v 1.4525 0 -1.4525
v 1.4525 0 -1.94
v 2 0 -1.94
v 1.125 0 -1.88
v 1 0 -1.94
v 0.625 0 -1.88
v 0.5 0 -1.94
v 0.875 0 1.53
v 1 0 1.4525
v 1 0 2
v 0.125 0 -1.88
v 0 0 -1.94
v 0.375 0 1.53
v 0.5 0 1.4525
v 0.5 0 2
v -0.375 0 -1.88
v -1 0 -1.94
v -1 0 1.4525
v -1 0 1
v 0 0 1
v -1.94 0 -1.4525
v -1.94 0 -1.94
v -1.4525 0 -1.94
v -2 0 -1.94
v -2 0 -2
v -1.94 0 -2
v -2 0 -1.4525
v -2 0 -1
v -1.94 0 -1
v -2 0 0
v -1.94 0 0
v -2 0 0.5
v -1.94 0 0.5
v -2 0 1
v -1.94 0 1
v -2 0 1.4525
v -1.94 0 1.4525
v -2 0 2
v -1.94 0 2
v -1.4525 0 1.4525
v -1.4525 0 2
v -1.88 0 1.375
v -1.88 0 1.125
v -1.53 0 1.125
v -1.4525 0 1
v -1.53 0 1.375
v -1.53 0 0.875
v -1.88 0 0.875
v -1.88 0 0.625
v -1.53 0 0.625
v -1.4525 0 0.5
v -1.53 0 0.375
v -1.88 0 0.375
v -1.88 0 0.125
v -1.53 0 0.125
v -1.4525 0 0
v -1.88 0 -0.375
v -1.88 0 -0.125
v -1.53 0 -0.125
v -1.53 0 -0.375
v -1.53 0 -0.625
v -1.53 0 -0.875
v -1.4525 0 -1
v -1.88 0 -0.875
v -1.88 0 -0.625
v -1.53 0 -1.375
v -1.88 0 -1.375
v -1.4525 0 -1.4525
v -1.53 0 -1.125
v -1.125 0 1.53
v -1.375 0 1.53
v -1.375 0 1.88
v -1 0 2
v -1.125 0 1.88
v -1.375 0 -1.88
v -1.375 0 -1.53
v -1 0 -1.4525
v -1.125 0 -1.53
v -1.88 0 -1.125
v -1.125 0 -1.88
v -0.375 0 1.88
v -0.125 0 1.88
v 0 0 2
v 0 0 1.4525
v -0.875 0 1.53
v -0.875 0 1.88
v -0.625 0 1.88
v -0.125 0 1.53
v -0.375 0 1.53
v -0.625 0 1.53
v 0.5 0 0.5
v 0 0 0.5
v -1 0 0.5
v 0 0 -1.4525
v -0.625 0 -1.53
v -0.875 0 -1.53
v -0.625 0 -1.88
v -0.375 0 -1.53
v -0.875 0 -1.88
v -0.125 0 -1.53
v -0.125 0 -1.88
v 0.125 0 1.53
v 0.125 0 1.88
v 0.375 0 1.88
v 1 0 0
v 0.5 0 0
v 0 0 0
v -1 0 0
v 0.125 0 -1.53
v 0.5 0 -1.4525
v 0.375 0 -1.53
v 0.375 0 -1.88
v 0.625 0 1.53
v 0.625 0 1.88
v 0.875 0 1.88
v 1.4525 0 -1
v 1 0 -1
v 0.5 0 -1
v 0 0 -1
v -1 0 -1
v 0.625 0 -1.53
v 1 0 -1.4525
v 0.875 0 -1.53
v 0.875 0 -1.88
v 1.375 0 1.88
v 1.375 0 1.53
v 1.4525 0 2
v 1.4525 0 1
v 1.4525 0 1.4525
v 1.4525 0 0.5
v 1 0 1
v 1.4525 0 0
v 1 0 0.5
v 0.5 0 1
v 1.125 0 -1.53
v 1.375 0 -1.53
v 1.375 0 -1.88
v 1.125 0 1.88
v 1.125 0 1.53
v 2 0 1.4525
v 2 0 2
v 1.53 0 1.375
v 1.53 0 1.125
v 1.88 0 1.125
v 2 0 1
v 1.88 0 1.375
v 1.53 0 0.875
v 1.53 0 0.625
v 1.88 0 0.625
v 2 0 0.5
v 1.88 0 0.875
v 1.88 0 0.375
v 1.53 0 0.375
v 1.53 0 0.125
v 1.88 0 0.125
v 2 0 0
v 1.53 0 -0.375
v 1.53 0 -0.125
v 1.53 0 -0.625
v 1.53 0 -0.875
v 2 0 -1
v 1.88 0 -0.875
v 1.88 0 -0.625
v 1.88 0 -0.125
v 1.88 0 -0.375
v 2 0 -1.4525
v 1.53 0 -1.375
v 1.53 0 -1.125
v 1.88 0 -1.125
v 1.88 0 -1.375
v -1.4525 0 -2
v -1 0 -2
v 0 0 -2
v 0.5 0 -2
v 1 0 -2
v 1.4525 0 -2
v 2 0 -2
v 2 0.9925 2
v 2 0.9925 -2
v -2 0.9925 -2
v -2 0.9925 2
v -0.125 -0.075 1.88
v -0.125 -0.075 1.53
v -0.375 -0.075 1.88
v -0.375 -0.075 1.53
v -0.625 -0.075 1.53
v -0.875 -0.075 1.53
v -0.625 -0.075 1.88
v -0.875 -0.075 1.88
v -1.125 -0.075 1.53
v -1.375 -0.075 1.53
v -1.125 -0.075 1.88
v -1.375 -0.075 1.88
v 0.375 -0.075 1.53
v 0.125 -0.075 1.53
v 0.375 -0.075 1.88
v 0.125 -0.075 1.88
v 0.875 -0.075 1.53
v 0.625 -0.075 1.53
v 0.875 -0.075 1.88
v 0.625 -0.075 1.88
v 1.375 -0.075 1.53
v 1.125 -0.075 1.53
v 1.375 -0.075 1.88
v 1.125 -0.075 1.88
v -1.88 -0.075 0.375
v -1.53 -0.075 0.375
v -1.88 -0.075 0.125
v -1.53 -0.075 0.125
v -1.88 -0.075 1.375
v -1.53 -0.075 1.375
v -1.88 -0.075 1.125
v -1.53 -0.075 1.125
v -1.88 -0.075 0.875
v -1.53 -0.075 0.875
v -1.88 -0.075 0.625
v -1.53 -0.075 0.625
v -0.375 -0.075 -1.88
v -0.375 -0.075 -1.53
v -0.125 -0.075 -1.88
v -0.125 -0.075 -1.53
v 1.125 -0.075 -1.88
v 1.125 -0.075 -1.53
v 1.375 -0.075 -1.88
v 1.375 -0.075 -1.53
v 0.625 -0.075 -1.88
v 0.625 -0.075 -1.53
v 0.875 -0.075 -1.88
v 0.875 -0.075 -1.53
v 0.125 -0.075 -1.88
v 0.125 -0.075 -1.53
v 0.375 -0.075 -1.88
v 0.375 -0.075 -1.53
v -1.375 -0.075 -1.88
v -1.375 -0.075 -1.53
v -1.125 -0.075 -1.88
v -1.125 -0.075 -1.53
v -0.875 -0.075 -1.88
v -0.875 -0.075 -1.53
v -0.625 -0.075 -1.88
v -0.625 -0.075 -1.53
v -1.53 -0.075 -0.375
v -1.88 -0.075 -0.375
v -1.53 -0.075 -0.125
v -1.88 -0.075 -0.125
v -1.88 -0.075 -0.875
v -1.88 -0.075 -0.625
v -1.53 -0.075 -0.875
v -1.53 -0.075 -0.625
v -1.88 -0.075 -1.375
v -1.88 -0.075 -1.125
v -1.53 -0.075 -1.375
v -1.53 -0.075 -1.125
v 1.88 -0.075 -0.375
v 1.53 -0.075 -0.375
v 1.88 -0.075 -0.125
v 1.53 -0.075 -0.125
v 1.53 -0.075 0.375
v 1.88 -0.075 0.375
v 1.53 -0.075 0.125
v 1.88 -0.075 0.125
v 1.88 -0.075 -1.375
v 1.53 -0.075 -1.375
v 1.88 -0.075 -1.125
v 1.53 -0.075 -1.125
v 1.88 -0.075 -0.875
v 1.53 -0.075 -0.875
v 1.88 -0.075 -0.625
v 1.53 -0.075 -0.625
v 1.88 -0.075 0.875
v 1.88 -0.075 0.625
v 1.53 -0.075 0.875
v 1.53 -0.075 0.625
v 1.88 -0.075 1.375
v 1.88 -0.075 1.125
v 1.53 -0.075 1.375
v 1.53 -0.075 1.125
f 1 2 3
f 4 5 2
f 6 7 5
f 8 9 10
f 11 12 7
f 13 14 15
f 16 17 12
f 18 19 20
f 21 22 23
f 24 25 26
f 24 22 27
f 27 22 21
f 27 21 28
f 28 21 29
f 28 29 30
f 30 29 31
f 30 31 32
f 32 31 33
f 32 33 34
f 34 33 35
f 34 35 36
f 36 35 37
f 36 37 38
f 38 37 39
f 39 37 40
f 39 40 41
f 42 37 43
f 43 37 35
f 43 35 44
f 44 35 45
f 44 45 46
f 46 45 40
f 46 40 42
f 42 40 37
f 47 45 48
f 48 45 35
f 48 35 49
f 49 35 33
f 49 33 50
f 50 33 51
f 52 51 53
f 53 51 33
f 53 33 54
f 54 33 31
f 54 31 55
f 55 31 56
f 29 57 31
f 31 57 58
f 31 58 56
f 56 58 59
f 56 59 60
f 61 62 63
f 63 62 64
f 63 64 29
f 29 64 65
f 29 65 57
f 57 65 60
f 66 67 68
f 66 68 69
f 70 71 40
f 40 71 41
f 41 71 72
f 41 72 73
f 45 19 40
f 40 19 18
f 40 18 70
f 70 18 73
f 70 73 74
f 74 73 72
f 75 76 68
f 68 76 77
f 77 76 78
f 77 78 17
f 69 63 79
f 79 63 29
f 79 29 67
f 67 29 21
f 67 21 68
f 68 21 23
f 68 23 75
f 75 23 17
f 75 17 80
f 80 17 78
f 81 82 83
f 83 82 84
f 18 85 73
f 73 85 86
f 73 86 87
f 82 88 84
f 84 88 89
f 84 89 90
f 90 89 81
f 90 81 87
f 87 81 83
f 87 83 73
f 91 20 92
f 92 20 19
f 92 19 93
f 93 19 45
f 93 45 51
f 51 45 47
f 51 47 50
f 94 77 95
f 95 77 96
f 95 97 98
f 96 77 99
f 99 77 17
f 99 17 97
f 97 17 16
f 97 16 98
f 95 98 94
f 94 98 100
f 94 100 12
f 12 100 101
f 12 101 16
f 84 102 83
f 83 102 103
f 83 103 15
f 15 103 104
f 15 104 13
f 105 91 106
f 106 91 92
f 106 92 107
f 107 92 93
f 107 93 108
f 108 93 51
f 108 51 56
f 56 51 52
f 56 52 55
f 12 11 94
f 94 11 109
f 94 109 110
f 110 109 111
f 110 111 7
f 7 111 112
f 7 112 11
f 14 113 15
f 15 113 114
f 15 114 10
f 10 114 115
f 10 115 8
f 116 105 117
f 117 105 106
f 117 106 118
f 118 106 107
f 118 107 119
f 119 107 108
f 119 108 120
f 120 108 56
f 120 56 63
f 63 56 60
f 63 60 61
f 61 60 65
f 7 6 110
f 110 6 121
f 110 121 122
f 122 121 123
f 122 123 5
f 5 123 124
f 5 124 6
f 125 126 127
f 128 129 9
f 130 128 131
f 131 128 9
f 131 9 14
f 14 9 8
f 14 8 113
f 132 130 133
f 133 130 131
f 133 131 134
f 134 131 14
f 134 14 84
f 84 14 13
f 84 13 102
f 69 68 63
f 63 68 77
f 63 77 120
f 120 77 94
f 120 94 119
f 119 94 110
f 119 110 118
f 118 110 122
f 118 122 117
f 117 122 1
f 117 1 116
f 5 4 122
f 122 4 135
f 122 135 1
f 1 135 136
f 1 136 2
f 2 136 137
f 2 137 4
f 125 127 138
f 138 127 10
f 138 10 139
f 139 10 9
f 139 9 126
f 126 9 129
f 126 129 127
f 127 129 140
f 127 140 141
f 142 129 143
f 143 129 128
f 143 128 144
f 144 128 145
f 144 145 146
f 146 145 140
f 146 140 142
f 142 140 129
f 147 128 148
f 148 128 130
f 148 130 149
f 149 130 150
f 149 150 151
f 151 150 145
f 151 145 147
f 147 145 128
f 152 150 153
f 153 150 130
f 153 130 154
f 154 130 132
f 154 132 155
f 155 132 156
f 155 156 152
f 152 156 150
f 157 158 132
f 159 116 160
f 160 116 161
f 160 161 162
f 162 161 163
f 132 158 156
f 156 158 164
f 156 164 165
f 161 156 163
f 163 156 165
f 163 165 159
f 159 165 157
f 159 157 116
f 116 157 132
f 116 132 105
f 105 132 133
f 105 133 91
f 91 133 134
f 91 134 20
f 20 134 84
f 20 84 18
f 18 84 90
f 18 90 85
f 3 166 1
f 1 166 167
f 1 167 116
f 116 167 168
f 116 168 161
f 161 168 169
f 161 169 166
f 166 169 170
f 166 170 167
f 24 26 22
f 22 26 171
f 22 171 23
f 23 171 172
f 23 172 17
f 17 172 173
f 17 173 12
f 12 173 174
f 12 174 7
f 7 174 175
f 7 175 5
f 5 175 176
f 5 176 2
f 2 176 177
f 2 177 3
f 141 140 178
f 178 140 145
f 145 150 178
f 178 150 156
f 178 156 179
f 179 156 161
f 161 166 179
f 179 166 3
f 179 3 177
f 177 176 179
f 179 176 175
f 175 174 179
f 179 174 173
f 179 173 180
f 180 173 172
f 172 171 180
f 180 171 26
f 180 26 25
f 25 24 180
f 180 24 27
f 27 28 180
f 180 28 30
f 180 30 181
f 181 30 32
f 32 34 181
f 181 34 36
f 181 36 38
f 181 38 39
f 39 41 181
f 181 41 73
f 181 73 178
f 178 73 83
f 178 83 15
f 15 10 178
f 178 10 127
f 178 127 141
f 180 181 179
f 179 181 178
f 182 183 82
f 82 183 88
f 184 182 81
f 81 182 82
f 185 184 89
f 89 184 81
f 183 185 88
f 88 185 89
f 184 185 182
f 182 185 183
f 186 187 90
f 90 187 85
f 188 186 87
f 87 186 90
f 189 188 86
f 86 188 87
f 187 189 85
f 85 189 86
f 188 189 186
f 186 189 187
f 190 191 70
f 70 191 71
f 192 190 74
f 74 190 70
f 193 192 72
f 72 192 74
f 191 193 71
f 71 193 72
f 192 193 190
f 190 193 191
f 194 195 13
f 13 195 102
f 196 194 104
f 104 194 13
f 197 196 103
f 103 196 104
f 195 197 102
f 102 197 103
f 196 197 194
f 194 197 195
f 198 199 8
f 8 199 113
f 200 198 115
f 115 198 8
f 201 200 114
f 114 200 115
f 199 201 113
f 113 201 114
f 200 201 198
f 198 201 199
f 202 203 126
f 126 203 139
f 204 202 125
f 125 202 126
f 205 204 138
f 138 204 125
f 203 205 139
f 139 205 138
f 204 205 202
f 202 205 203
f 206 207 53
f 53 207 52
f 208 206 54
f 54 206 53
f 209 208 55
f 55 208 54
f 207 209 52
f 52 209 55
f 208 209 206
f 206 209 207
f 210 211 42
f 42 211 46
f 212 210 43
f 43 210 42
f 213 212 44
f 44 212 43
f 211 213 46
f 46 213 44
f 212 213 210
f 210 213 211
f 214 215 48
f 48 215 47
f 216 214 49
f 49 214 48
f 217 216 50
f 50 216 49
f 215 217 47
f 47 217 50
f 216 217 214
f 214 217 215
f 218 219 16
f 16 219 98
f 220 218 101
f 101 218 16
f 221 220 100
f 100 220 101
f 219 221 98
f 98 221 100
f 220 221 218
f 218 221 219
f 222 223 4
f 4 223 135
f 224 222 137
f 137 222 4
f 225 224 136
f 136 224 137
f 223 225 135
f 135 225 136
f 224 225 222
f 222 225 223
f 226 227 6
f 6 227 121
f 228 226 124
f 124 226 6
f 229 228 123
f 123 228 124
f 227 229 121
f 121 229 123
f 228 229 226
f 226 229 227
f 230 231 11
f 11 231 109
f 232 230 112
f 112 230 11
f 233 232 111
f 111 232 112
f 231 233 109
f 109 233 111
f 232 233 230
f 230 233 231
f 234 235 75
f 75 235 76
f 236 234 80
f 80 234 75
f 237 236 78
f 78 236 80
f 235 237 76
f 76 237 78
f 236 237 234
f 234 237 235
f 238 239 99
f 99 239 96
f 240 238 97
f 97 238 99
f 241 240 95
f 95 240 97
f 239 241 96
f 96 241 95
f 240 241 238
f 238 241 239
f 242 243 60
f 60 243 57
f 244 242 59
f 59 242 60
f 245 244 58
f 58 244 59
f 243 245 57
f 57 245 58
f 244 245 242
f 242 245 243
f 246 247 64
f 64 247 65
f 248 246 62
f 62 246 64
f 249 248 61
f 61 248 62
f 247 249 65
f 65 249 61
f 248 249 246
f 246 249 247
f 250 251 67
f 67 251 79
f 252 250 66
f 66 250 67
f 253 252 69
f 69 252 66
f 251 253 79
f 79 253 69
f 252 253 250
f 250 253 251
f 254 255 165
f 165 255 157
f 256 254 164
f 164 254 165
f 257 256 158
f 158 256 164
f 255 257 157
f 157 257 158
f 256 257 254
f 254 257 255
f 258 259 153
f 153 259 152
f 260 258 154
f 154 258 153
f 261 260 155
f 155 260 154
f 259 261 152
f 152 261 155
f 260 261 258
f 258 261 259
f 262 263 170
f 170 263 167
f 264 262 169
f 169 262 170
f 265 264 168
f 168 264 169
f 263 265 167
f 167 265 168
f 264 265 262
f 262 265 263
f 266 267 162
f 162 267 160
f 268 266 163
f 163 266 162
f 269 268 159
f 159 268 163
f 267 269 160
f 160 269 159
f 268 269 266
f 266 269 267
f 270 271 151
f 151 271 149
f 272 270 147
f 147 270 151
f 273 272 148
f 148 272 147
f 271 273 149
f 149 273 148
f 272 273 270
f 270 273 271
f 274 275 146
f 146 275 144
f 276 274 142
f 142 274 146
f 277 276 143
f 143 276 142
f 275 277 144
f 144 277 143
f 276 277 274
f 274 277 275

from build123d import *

# Parameters (mm, degrees)
SKETCH2_W           = 4
SKETCH2_H           = 4
BOSS_EXTRUDE1_DEPTH = 0.9925
SKETCH3_W           = 0.25
SKETCH3_H           = 0.35
SKETCH3_W_2         = 0.35
SKETCH3_H_2         = 0.25
BOSS_EXTRUDE2_DEPTH = 0.075


with BuildPart() as part:
    # Sketch2 → Boss-Extrude1 (new body)
    with BuildSketch(Plane(origin=(0, 0, 0), x_dir=(1, 0, 0), z_dir=(0, 1, 0))):
        Rectangle(SKETCH2_W, SKETCH2_H)
    extrude(amount=BOSS_EXTRUDE1_DEPTH)

    # Sketch3 → Boss-Extrude2 (add)
    with BuildSketch(Plane.XZ):
        with Locations((-0.75, 1.705)):
            Rectangle(SKETCH3_W, SKETCH3_H)
        with Locations((-0.25, 1.705)):
            Rectangle(SKETCH3_W, SKETCH3_H)
        with Locations((-1.25, 1.705)):
            Rectangle(SKETCH3_W, SKETCH3_H)
        with Locations((0.25, 1.705)):
            Rectangle(SKETCH3_W, SKETCH3_H)
        with Locations((0.75, 1.705)):
            Rectangle(SKETCH3_W, SKETCH3_H)
        with Locations((1.25, 1.705)):
            Rectangle(SKETCH3_W, SKETCH3_H)
        with Locations((1.25, -1.705)):
            Rectangle(SKETCH3_W, SKETCH3_H)
        with Locations((-1.705, 1.25)):
            Rectangle(SKETCH3_W_2, SKETCH3_H_2)
        with Locations((-1.705, 0.75)):
            Rectangle(SKETCH3_W_2, SKETCH3_H_2)
        with Locations((-1.705, 0.25)):
            Rectangle(SKETCH3_W_2, SKETCH3_H_2)
        with Locations((0.75, -1.705)):
            Rectangle(SKETCH3_W, SKETCH3_H)
        with Locations((0.25, -1.705)):
            Rectangle(SKETCH3_W, SKETCH3_H)
        with Locations((-1.25, -1.705)):
            Rectangle(SKETCH3_W, SKETCH3_H)
        with Locations((-0.75, -1.705)):
            Rectangle(SKETCH3_W, SKETCH3_H)
        with Locations((-0.25, -1.705)):
            Rectangle(SKETCH3_W, SKETCH3_H)
        with Locations((-1.705, -0.75)):
            Rectangle(SKETCH3_W_2, SKETCH3_H_2)
        with Locations((-1.705, -0.25)):
            Rectangle(SKETCH3_W_2, SKETCH3_H_2)
        with Locations((-1.705, -1.25)):
            Rectangle(SKETCH3_W_2, SKETCH3_H_2)
        with Locations((1.705, -1.25)):
            Rectangle(SKETCH3_W_2, SKETCH3_H_2)
        with Locations((1.705, -0.75)):
            Rectangle(SKETCH3_W_2, SKETCH3_H_2)
        with Locations((1.705, -0.25)):
            Rectangle(SKETCH3_W_2, SKETCH3_H_2)
        with Locations((1.705, 0.75)):
            Rectangle(SKETCH3_W_2, SKETCH3_H_2)
        with Locations((1.705, 0.25)):
            Rectangle(SKETCH3_W_2, SKETCH3_H_2)
        with Locations((1.705, 1.25)):
            Rectangle(SKETCH3_W_2, SKETCH3_H_2)
    extrude(amount=BOSS_EXTRUDE2_DEPTH)


solid = part.part
